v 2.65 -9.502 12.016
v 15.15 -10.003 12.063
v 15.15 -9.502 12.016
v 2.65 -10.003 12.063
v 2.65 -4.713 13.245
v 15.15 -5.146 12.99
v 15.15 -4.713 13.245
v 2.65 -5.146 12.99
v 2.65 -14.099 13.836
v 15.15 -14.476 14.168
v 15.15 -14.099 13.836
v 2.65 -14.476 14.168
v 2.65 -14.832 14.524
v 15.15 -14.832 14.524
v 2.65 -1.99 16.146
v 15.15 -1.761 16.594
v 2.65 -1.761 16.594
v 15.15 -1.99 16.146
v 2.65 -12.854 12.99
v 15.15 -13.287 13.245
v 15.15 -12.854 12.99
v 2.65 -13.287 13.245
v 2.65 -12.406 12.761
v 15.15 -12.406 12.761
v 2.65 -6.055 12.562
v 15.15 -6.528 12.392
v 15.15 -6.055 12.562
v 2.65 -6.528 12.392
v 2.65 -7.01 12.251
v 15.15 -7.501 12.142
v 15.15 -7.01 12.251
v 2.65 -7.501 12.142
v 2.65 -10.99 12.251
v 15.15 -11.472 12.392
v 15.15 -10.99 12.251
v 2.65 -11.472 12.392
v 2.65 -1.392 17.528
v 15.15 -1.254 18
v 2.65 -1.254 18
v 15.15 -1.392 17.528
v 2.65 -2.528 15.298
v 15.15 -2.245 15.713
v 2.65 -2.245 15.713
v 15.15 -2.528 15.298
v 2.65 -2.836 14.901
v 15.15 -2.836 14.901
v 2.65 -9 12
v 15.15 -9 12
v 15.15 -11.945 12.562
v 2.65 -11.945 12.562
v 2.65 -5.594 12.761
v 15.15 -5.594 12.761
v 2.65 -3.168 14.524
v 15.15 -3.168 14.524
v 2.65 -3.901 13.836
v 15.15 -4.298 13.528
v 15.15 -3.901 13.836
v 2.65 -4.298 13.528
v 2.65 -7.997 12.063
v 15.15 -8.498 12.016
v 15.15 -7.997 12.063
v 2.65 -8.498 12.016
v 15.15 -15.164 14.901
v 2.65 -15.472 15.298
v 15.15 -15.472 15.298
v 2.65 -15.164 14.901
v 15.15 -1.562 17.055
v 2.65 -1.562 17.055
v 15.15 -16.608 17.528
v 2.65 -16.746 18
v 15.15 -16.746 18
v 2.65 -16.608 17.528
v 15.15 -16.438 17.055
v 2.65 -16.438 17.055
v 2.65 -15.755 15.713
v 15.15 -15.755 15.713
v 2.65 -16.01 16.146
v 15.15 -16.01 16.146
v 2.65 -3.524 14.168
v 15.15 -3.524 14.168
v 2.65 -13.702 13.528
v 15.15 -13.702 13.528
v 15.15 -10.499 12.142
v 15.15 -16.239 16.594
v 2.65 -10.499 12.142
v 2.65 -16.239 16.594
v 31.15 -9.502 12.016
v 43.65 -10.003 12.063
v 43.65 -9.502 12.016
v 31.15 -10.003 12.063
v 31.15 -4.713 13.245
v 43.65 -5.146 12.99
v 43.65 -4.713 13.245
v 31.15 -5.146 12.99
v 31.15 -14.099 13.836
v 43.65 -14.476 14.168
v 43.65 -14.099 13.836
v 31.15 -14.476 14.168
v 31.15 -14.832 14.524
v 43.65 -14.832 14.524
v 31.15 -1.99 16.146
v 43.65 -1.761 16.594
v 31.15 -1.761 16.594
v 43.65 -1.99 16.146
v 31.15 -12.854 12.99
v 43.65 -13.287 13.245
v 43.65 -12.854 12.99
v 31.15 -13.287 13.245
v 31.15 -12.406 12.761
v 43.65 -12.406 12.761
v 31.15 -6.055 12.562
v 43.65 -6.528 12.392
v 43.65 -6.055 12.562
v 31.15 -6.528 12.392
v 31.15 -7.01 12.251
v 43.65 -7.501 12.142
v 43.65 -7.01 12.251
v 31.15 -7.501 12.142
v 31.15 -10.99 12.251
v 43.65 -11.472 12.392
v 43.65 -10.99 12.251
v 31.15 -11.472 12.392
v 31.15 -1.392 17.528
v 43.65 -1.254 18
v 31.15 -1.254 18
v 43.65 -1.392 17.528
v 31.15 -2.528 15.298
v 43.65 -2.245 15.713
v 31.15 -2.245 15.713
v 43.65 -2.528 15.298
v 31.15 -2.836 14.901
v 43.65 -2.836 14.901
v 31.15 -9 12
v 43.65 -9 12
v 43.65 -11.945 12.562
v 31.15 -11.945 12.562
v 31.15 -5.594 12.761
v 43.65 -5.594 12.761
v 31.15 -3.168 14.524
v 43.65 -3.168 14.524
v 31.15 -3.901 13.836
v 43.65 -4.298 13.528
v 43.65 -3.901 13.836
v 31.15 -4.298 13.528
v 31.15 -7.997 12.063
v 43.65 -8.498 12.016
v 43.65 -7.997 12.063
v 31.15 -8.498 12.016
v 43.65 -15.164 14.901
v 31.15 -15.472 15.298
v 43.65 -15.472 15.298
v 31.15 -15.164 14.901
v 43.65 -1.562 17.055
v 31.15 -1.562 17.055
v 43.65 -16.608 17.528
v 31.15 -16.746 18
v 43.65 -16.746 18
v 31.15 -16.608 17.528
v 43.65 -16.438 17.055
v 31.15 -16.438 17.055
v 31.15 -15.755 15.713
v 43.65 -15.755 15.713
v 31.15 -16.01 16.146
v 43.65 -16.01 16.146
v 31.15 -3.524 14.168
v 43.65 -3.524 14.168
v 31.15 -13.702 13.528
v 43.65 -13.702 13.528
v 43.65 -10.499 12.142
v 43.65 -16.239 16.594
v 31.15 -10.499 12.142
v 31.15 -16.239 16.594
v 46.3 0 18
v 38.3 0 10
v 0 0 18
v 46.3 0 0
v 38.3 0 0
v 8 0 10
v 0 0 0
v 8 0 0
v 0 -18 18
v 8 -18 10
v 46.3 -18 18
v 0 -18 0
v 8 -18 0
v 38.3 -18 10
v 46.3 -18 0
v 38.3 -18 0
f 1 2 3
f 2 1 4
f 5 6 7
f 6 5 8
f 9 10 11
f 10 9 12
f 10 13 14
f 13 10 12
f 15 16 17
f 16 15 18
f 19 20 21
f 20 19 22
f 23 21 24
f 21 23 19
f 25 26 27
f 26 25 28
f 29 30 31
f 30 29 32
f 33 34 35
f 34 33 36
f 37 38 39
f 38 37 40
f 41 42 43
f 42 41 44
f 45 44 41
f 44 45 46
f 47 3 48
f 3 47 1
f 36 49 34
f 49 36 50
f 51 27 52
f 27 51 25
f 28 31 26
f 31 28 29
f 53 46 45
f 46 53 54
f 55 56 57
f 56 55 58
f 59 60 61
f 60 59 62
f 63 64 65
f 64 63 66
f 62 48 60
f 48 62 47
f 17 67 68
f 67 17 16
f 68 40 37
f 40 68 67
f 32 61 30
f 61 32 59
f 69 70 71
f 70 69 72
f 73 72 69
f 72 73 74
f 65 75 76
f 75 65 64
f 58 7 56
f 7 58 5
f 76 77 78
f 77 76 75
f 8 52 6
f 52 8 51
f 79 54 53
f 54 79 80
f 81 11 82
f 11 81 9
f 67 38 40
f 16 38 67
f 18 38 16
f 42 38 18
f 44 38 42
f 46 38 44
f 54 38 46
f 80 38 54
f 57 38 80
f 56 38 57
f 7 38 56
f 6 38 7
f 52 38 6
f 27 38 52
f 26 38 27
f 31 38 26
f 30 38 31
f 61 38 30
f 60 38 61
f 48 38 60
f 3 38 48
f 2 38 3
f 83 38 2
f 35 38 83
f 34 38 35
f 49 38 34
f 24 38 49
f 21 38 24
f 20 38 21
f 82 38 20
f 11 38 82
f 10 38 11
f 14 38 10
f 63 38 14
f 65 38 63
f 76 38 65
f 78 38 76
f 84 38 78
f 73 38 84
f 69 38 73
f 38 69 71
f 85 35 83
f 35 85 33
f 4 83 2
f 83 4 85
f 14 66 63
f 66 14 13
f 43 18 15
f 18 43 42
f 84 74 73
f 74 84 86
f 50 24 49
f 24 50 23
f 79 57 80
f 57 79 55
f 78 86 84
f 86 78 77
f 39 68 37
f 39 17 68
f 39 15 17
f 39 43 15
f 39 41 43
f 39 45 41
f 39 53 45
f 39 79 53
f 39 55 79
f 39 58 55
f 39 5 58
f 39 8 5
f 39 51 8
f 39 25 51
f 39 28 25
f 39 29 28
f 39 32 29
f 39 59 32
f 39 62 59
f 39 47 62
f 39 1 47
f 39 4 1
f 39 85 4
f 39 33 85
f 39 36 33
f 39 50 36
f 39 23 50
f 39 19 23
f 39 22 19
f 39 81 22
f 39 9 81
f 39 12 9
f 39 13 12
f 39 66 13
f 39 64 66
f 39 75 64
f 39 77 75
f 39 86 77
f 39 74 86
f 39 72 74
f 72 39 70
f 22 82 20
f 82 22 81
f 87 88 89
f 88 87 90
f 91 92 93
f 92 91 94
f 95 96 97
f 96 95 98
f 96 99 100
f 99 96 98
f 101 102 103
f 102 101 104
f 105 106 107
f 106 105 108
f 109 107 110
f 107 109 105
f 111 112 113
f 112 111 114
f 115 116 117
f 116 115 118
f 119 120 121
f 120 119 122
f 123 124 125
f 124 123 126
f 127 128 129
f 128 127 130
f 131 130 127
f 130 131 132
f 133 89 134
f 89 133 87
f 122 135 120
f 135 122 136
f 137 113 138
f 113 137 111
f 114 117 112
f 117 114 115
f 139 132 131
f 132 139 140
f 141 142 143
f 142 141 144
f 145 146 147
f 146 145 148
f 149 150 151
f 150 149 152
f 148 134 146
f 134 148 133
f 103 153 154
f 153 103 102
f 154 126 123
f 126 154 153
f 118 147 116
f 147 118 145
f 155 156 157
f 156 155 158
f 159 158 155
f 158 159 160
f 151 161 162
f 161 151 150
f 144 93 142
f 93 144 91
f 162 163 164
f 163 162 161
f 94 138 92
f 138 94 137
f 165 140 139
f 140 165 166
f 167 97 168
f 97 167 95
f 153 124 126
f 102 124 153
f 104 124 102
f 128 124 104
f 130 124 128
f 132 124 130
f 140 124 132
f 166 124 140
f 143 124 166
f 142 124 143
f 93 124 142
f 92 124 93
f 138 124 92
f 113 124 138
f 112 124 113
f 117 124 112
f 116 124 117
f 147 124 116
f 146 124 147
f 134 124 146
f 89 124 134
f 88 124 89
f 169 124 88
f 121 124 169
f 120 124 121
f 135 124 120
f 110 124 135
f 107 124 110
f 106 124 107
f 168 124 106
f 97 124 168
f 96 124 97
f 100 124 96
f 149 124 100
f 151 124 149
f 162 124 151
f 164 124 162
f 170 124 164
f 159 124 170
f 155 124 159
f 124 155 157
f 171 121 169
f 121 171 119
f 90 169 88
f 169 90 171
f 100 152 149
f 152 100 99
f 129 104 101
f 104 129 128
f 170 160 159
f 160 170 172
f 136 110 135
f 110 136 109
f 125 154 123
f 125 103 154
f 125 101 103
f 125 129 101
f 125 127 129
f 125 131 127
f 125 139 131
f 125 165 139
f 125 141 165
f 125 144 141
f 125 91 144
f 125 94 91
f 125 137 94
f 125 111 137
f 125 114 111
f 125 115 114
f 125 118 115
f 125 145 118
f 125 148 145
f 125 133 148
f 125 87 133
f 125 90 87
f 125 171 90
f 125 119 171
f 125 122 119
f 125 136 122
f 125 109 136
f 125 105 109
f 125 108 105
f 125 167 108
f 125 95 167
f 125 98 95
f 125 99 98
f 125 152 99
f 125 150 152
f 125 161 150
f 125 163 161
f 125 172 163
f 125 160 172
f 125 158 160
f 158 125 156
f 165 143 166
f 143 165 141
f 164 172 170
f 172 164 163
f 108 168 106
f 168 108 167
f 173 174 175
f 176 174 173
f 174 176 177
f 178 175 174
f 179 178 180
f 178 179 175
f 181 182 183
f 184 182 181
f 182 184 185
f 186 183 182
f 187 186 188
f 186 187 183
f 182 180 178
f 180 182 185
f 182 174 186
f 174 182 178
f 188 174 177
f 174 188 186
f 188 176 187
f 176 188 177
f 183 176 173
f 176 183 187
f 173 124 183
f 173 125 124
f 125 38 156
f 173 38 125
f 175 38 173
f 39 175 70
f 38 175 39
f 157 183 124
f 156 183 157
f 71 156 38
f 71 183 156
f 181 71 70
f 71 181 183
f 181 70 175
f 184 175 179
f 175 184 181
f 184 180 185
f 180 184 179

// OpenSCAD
// file: wall-cap.scad
// Measured:
wall_width = 30.3;
// tolerance = 0.05;
$fn = 100;

// Desired:
thickness = 4.0;
drop = wall_width;
hook_radius = 12.0;
length = 8.0;

module cap(length, drop = drop, t = thickness) {
    w = wall_width;
    linear_extrude(length) {
        square([t, drop]);
        translate([0, drop]) square([t + w + t, t]);
        translate([t + w, 0]) square([t, drop]);
    }
}

module hook(length, radius) {
    linear_extrude(length) {
        difference() {
            circle(radius);
            circle(radius-thickness);
            translate([-radius, 0]) square(2*radius);
        }
    }
}

cap(length=length);
translate([-hook_radius + thickness, 0, 0]) color("green")
  hook(length=length, radius=hook_radius);
translate([wall_width + hook_radius + thickness, 0, 0]) color("green")
  hook(length=length, radius=hook_radius);
// main file
use <wall-cap.scad>;

// Measurements:
wall = 30.3;

drop = 10;
thickness = 8.0;

wheel_width = 12.5;
wheel_radius = 8.0; // not really circular tho
wheel_base = 59.0;
wheel_depth = 6;

bus_width = 41;
bus_length = 105;

$fn = 100;

difference() {
    rotate([90, 0, 0]) cap(length=2*wheel_radius + 2, drop=drop, t=thickness);
    translate([((2*thickness+wall)-bus_width)/2, 0, 0]) {
        wheel_well("left");
        wheel_well("right");
    }
}

module wheel() {
    translate([-wheel_width/2, 0, 0])
      rotate([90, 0, 90])
      cylinder(h=wheel_width, r=wheel_radius);
}

module wheel_well(which = "left") {
    if (which == "left") {
        x = wheel_width / 2;
        translate([x, -wheel_radius - 1, drop + thickness + (wheel_radius - wheel_depth)])
          color("green") wheel();
    } else {
        x = bus_width - wheel_width / 2;
        translate([x, -wheel_radius - 1, drop + thickness + (wheel_radius - wheel_depth)])
        color("red") wheel();
    }
}
